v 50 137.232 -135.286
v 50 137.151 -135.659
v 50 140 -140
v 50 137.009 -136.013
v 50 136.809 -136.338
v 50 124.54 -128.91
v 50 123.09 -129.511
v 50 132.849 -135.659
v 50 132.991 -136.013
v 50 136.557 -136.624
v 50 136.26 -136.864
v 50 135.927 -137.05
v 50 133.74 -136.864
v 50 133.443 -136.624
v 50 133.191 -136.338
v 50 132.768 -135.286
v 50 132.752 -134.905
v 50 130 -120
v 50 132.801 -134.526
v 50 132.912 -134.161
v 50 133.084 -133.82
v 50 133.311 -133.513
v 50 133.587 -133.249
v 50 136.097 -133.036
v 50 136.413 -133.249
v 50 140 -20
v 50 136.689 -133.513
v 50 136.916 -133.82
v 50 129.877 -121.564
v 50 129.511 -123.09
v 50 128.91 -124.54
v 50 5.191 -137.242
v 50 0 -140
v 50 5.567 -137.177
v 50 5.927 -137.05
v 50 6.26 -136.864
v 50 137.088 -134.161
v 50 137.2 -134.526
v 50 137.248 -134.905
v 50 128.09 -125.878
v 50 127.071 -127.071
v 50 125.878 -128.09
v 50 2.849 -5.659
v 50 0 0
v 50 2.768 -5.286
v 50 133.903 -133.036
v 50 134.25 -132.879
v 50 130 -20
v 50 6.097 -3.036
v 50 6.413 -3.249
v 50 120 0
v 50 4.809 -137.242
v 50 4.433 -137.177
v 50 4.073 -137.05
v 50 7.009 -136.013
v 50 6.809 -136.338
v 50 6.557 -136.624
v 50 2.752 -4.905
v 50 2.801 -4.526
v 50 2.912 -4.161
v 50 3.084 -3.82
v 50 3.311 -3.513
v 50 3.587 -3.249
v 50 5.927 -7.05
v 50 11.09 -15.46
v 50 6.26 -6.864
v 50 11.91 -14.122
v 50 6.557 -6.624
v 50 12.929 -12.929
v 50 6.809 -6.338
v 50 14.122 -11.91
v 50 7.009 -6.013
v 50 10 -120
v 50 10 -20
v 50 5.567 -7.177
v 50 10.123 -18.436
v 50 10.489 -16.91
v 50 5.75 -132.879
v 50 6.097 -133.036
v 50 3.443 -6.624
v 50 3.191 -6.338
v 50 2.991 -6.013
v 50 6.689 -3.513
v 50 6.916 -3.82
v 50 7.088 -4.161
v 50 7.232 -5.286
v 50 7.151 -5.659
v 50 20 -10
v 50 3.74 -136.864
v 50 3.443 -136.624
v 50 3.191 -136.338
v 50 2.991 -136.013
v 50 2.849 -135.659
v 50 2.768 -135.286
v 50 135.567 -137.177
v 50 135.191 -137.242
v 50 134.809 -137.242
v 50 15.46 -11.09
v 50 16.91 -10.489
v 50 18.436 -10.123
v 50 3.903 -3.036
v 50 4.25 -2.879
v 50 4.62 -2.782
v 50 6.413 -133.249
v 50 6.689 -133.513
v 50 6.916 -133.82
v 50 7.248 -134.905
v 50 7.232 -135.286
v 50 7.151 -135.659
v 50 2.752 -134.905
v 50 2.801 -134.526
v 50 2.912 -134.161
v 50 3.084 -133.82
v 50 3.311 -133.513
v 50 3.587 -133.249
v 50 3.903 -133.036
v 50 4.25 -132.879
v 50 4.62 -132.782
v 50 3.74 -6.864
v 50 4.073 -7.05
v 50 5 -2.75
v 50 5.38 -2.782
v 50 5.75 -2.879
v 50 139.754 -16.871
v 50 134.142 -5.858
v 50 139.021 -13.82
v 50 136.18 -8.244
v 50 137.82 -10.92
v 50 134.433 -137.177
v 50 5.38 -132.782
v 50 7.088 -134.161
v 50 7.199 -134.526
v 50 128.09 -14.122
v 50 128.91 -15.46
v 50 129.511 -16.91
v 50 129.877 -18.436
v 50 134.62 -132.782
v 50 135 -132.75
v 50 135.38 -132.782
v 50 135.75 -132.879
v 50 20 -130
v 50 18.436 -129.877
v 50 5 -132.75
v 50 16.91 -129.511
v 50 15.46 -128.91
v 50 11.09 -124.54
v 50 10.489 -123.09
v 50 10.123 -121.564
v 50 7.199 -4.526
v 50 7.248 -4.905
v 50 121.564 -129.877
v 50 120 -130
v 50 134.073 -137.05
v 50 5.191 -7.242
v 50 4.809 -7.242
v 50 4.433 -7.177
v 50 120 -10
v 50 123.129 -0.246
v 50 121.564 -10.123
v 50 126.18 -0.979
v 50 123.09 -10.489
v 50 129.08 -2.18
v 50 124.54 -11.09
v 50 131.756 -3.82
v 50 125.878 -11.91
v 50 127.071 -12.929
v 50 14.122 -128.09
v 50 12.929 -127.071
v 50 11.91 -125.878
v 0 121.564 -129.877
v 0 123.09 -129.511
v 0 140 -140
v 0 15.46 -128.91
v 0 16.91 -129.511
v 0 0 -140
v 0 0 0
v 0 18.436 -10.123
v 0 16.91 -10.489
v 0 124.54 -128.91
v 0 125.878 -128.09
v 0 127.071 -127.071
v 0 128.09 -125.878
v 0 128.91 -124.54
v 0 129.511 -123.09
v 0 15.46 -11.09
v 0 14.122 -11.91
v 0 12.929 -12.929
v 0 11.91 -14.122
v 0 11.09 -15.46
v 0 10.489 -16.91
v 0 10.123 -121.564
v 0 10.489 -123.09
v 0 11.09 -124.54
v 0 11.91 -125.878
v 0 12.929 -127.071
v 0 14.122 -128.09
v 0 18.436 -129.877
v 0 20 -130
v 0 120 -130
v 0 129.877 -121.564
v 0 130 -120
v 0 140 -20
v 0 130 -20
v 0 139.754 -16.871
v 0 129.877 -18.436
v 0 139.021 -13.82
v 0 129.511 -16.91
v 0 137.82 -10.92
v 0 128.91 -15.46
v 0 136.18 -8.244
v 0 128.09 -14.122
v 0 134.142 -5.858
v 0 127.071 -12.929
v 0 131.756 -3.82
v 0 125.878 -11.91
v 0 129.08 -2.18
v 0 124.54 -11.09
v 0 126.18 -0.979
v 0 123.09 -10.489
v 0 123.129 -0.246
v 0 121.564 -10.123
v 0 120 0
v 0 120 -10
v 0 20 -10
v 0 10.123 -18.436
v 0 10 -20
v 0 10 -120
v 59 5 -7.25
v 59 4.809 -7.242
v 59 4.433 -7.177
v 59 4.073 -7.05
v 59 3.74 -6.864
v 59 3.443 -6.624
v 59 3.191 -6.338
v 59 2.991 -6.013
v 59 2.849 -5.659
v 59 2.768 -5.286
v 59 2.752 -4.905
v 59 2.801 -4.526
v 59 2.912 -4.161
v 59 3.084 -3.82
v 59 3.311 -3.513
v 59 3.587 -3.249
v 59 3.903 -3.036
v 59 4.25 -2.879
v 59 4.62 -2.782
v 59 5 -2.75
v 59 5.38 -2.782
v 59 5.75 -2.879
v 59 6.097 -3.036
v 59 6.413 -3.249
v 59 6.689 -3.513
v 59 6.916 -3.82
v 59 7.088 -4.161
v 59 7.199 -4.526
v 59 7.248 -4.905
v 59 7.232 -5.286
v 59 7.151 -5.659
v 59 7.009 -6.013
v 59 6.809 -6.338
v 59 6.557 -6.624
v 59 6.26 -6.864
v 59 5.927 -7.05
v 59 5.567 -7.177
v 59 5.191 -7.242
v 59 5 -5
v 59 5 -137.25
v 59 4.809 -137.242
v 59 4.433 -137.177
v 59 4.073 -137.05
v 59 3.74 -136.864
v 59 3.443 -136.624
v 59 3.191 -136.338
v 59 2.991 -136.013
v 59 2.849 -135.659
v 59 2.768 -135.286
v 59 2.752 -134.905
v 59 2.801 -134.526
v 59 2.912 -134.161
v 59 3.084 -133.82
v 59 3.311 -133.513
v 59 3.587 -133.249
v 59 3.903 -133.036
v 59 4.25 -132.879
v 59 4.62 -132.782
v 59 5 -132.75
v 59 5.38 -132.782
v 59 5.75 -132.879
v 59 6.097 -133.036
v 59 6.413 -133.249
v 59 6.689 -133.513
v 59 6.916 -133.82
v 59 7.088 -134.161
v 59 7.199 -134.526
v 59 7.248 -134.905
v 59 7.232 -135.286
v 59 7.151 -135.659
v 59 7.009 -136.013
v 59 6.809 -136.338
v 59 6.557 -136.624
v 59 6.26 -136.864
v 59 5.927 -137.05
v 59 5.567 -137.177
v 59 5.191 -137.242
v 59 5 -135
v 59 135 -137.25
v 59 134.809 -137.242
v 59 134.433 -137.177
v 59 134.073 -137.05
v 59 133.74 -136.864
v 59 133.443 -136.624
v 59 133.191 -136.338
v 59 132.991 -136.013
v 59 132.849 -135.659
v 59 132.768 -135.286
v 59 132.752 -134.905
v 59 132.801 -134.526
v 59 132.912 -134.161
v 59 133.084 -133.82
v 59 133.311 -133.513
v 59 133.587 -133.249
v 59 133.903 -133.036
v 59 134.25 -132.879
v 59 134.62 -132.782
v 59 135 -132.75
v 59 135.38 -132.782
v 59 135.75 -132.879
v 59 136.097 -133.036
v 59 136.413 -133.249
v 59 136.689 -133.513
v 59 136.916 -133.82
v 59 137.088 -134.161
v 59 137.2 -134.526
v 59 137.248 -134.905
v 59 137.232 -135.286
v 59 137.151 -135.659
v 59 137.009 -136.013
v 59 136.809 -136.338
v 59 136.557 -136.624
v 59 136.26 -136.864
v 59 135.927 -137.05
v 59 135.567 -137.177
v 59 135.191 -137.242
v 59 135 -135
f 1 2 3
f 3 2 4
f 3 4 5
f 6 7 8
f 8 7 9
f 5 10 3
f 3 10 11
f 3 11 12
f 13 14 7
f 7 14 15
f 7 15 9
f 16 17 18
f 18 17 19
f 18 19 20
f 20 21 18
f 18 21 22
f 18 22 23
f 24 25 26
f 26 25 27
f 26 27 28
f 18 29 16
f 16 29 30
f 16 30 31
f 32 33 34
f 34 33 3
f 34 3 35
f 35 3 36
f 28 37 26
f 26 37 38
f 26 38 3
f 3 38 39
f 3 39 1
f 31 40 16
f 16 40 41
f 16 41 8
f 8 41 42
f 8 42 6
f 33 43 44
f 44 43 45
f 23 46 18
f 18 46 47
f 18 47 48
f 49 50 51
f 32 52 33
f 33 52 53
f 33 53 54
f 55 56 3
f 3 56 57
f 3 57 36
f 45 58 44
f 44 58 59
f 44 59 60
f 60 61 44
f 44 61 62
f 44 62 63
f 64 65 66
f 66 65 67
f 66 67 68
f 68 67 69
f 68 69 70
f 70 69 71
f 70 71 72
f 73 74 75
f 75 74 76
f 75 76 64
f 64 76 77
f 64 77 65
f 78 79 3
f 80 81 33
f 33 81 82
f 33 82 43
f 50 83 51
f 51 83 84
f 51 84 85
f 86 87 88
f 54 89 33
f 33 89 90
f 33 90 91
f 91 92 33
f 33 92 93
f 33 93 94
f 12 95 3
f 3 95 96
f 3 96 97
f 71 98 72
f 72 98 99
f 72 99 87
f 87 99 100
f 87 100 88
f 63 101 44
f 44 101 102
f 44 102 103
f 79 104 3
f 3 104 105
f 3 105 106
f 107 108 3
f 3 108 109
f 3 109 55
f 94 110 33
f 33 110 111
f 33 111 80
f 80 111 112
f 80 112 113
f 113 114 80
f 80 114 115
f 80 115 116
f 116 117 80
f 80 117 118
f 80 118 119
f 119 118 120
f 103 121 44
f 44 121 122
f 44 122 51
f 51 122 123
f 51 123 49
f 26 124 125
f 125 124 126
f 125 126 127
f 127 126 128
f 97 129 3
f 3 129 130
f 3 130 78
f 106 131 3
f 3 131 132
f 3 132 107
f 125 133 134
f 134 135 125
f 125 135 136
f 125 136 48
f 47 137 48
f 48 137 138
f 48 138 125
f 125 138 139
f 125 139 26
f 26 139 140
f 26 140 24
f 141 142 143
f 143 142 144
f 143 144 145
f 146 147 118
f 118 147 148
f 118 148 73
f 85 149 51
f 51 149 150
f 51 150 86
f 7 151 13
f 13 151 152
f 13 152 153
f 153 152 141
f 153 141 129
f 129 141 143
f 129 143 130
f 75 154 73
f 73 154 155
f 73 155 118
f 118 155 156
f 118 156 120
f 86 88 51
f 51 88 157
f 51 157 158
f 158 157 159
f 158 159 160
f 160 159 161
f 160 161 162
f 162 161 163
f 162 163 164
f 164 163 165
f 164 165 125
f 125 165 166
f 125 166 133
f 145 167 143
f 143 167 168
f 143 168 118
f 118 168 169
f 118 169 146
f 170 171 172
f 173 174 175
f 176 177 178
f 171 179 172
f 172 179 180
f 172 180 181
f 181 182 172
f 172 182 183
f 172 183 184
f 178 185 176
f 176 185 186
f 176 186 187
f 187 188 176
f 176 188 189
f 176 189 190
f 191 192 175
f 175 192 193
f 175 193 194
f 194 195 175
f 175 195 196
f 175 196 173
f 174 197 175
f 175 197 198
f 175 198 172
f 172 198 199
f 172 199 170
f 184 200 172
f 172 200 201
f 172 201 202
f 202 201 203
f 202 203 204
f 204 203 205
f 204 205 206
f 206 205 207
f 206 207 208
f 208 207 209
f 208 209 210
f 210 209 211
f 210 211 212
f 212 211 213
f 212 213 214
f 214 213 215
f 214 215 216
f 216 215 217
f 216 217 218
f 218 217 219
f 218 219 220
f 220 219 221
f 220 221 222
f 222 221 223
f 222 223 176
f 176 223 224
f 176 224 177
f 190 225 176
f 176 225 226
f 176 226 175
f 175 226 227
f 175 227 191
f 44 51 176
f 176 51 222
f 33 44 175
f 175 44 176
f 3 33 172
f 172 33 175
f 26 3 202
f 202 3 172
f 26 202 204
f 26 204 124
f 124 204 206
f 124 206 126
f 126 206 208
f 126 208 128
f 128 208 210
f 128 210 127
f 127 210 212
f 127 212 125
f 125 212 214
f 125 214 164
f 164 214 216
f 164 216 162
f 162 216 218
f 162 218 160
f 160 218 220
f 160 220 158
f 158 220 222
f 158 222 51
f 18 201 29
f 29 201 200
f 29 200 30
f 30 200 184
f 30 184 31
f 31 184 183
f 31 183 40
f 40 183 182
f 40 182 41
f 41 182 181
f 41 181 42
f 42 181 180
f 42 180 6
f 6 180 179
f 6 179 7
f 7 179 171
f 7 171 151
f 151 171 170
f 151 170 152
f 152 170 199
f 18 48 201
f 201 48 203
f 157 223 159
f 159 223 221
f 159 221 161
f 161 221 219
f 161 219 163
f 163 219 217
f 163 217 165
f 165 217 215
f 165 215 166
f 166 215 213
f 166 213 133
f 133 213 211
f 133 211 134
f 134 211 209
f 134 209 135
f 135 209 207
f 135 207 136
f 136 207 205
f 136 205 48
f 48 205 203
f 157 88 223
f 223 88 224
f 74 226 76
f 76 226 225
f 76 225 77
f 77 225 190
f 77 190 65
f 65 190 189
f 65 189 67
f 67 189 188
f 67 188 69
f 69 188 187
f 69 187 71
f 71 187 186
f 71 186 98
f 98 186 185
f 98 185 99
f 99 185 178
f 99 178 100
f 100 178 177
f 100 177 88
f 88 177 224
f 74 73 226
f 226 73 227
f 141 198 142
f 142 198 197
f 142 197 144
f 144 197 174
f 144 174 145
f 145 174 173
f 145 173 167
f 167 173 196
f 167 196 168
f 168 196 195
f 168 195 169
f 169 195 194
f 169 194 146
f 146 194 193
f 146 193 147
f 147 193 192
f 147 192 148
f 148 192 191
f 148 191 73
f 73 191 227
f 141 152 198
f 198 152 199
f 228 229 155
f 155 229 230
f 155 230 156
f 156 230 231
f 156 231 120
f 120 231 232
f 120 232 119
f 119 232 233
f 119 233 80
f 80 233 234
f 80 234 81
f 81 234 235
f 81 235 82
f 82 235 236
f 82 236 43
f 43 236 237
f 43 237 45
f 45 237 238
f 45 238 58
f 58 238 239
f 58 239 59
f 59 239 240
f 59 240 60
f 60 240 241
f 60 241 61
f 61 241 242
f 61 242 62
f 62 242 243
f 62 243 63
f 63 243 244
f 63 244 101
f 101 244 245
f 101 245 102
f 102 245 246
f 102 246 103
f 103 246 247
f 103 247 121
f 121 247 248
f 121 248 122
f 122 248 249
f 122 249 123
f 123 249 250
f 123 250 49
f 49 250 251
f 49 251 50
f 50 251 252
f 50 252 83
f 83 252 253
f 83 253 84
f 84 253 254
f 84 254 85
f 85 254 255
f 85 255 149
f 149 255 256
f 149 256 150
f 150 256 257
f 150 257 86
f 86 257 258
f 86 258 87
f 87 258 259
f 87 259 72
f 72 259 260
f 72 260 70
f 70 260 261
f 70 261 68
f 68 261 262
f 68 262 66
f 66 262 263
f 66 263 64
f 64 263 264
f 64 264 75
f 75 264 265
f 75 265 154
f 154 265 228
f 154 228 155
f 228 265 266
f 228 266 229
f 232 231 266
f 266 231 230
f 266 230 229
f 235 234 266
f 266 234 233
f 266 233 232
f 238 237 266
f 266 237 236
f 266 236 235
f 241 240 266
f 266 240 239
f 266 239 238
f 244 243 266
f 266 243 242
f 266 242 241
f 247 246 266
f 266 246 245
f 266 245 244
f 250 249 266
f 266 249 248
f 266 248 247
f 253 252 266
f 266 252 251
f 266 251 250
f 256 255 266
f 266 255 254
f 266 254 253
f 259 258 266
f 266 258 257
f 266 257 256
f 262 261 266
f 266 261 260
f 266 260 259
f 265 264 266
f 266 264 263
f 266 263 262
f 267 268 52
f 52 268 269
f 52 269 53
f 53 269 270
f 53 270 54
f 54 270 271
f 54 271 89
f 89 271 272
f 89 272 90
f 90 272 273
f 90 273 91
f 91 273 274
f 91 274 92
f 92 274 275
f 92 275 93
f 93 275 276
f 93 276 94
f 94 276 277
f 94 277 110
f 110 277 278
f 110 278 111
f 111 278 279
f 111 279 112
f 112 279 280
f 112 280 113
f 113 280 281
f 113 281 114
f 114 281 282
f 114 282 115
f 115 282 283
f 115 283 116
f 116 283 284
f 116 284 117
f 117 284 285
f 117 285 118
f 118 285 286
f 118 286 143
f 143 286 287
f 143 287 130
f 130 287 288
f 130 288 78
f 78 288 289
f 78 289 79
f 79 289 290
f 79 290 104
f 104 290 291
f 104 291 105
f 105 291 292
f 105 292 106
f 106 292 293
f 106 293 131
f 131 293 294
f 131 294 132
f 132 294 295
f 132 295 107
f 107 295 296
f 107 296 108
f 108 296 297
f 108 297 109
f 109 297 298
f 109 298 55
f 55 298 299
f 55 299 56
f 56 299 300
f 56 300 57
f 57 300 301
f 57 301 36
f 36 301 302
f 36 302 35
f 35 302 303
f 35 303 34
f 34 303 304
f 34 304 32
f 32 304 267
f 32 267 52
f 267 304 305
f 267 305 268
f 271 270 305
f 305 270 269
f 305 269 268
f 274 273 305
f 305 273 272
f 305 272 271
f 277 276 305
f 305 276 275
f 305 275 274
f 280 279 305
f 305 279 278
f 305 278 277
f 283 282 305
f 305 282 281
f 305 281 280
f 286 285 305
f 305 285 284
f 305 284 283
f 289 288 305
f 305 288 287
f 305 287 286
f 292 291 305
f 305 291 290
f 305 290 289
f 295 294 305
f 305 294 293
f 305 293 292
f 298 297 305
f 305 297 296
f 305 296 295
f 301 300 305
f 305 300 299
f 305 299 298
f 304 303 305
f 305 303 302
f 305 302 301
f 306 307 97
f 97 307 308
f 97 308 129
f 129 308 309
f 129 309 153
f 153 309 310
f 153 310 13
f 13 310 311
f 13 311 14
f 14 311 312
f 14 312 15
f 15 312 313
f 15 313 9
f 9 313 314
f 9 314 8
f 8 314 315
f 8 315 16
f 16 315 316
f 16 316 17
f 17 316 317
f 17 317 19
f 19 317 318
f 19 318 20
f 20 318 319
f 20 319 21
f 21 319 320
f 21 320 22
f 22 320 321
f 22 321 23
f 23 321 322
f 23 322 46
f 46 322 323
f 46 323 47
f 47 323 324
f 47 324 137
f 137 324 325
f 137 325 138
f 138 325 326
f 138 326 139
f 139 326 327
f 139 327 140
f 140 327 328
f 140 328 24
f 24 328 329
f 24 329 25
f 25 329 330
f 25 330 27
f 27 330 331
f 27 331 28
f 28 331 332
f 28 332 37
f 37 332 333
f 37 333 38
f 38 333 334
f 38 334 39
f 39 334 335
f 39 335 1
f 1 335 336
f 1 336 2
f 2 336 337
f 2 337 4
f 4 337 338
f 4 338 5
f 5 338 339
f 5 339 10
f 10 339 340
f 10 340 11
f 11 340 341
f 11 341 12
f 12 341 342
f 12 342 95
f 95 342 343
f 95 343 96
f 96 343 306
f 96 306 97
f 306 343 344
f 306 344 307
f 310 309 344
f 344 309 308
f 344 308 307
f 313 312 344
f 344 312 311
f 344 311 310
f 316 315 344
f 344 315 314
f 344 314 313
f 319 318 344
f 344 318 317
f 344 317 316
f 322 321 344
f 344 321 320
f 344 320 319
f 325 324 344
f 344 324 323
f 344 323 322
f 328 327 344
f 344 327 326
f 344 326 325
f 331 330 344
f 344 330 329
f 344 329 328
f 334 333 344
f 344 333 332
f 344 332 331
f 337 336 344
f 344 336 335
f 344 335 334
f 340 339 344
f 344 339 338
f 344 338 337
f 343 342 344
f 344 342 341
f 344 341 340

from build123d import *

# Parameters (mm, degrees)
EXTRUDE_1_DEPTH = 50
SKETCH_2_R      = 2.25
EXTRUDE_2_DEPTH = 9


with BuildPart() as part:
    # 草图1 → 凸台-拉伸1 (new body)
    with BuildSketch(Plane(origin=(0, 0, 0), x_dir=(0, 0, -1), z_dir=(1, 0, 0))):
        with BuildLine():
            Line((0, 0), (140, 0))
            Line((140, 0), (140, 140))
            Line((140, 140), (20, 140))
            ThreePointArc((20, 140), (5.857864376, 134.142135624), (0, 120))
            Line((0, 120), (0, 0))
        make_face()
        with BuildLine():
            Line((20, 10), (120, 10))
            ThreePointArc((120, 10), (127.071067812, 12.928932188), (130, 20))
            Line((130, 20), (130, 120))
            ThreePointArc((130, 120), (127.071067812, 127.071067812), (120, 130))
            Line((120, 130), (20, 130))
            ThreePointArc((20, 130), (12.928932188, 127.071067812), (10, 120))
            Line((10, 120), (10, 20))
            ThreePointArc((10, 20), (12.928932188, 12.928932188), (20, 10))
        make_face(mode=Mode.SUBTRACT)
    extrude(amount=EXTRUDE_1_DEPTH)

    # 草图2 → 凸台-拉伸2 (add)
    with BuildSketch(Plane(origin=(50, 0, 0), x_dir=(0, 0, -1), z_dir=(1, 0, 0))):
        with Locations(Location((5, 5, 0), (0, 0, 180))):
            Circle(SKETCH_2_R)
        with Locations(Location((135, 5, 0), (0, 0, 180))):
            Circle(SKETCH_2_R)
        with Locations(Location((135, 135, 0), (0, 0, 180))):
            Circle(SKETCH_2_R)
    extrude(amount=EXTRUDE_2_DEPTH)


solid = part.part
